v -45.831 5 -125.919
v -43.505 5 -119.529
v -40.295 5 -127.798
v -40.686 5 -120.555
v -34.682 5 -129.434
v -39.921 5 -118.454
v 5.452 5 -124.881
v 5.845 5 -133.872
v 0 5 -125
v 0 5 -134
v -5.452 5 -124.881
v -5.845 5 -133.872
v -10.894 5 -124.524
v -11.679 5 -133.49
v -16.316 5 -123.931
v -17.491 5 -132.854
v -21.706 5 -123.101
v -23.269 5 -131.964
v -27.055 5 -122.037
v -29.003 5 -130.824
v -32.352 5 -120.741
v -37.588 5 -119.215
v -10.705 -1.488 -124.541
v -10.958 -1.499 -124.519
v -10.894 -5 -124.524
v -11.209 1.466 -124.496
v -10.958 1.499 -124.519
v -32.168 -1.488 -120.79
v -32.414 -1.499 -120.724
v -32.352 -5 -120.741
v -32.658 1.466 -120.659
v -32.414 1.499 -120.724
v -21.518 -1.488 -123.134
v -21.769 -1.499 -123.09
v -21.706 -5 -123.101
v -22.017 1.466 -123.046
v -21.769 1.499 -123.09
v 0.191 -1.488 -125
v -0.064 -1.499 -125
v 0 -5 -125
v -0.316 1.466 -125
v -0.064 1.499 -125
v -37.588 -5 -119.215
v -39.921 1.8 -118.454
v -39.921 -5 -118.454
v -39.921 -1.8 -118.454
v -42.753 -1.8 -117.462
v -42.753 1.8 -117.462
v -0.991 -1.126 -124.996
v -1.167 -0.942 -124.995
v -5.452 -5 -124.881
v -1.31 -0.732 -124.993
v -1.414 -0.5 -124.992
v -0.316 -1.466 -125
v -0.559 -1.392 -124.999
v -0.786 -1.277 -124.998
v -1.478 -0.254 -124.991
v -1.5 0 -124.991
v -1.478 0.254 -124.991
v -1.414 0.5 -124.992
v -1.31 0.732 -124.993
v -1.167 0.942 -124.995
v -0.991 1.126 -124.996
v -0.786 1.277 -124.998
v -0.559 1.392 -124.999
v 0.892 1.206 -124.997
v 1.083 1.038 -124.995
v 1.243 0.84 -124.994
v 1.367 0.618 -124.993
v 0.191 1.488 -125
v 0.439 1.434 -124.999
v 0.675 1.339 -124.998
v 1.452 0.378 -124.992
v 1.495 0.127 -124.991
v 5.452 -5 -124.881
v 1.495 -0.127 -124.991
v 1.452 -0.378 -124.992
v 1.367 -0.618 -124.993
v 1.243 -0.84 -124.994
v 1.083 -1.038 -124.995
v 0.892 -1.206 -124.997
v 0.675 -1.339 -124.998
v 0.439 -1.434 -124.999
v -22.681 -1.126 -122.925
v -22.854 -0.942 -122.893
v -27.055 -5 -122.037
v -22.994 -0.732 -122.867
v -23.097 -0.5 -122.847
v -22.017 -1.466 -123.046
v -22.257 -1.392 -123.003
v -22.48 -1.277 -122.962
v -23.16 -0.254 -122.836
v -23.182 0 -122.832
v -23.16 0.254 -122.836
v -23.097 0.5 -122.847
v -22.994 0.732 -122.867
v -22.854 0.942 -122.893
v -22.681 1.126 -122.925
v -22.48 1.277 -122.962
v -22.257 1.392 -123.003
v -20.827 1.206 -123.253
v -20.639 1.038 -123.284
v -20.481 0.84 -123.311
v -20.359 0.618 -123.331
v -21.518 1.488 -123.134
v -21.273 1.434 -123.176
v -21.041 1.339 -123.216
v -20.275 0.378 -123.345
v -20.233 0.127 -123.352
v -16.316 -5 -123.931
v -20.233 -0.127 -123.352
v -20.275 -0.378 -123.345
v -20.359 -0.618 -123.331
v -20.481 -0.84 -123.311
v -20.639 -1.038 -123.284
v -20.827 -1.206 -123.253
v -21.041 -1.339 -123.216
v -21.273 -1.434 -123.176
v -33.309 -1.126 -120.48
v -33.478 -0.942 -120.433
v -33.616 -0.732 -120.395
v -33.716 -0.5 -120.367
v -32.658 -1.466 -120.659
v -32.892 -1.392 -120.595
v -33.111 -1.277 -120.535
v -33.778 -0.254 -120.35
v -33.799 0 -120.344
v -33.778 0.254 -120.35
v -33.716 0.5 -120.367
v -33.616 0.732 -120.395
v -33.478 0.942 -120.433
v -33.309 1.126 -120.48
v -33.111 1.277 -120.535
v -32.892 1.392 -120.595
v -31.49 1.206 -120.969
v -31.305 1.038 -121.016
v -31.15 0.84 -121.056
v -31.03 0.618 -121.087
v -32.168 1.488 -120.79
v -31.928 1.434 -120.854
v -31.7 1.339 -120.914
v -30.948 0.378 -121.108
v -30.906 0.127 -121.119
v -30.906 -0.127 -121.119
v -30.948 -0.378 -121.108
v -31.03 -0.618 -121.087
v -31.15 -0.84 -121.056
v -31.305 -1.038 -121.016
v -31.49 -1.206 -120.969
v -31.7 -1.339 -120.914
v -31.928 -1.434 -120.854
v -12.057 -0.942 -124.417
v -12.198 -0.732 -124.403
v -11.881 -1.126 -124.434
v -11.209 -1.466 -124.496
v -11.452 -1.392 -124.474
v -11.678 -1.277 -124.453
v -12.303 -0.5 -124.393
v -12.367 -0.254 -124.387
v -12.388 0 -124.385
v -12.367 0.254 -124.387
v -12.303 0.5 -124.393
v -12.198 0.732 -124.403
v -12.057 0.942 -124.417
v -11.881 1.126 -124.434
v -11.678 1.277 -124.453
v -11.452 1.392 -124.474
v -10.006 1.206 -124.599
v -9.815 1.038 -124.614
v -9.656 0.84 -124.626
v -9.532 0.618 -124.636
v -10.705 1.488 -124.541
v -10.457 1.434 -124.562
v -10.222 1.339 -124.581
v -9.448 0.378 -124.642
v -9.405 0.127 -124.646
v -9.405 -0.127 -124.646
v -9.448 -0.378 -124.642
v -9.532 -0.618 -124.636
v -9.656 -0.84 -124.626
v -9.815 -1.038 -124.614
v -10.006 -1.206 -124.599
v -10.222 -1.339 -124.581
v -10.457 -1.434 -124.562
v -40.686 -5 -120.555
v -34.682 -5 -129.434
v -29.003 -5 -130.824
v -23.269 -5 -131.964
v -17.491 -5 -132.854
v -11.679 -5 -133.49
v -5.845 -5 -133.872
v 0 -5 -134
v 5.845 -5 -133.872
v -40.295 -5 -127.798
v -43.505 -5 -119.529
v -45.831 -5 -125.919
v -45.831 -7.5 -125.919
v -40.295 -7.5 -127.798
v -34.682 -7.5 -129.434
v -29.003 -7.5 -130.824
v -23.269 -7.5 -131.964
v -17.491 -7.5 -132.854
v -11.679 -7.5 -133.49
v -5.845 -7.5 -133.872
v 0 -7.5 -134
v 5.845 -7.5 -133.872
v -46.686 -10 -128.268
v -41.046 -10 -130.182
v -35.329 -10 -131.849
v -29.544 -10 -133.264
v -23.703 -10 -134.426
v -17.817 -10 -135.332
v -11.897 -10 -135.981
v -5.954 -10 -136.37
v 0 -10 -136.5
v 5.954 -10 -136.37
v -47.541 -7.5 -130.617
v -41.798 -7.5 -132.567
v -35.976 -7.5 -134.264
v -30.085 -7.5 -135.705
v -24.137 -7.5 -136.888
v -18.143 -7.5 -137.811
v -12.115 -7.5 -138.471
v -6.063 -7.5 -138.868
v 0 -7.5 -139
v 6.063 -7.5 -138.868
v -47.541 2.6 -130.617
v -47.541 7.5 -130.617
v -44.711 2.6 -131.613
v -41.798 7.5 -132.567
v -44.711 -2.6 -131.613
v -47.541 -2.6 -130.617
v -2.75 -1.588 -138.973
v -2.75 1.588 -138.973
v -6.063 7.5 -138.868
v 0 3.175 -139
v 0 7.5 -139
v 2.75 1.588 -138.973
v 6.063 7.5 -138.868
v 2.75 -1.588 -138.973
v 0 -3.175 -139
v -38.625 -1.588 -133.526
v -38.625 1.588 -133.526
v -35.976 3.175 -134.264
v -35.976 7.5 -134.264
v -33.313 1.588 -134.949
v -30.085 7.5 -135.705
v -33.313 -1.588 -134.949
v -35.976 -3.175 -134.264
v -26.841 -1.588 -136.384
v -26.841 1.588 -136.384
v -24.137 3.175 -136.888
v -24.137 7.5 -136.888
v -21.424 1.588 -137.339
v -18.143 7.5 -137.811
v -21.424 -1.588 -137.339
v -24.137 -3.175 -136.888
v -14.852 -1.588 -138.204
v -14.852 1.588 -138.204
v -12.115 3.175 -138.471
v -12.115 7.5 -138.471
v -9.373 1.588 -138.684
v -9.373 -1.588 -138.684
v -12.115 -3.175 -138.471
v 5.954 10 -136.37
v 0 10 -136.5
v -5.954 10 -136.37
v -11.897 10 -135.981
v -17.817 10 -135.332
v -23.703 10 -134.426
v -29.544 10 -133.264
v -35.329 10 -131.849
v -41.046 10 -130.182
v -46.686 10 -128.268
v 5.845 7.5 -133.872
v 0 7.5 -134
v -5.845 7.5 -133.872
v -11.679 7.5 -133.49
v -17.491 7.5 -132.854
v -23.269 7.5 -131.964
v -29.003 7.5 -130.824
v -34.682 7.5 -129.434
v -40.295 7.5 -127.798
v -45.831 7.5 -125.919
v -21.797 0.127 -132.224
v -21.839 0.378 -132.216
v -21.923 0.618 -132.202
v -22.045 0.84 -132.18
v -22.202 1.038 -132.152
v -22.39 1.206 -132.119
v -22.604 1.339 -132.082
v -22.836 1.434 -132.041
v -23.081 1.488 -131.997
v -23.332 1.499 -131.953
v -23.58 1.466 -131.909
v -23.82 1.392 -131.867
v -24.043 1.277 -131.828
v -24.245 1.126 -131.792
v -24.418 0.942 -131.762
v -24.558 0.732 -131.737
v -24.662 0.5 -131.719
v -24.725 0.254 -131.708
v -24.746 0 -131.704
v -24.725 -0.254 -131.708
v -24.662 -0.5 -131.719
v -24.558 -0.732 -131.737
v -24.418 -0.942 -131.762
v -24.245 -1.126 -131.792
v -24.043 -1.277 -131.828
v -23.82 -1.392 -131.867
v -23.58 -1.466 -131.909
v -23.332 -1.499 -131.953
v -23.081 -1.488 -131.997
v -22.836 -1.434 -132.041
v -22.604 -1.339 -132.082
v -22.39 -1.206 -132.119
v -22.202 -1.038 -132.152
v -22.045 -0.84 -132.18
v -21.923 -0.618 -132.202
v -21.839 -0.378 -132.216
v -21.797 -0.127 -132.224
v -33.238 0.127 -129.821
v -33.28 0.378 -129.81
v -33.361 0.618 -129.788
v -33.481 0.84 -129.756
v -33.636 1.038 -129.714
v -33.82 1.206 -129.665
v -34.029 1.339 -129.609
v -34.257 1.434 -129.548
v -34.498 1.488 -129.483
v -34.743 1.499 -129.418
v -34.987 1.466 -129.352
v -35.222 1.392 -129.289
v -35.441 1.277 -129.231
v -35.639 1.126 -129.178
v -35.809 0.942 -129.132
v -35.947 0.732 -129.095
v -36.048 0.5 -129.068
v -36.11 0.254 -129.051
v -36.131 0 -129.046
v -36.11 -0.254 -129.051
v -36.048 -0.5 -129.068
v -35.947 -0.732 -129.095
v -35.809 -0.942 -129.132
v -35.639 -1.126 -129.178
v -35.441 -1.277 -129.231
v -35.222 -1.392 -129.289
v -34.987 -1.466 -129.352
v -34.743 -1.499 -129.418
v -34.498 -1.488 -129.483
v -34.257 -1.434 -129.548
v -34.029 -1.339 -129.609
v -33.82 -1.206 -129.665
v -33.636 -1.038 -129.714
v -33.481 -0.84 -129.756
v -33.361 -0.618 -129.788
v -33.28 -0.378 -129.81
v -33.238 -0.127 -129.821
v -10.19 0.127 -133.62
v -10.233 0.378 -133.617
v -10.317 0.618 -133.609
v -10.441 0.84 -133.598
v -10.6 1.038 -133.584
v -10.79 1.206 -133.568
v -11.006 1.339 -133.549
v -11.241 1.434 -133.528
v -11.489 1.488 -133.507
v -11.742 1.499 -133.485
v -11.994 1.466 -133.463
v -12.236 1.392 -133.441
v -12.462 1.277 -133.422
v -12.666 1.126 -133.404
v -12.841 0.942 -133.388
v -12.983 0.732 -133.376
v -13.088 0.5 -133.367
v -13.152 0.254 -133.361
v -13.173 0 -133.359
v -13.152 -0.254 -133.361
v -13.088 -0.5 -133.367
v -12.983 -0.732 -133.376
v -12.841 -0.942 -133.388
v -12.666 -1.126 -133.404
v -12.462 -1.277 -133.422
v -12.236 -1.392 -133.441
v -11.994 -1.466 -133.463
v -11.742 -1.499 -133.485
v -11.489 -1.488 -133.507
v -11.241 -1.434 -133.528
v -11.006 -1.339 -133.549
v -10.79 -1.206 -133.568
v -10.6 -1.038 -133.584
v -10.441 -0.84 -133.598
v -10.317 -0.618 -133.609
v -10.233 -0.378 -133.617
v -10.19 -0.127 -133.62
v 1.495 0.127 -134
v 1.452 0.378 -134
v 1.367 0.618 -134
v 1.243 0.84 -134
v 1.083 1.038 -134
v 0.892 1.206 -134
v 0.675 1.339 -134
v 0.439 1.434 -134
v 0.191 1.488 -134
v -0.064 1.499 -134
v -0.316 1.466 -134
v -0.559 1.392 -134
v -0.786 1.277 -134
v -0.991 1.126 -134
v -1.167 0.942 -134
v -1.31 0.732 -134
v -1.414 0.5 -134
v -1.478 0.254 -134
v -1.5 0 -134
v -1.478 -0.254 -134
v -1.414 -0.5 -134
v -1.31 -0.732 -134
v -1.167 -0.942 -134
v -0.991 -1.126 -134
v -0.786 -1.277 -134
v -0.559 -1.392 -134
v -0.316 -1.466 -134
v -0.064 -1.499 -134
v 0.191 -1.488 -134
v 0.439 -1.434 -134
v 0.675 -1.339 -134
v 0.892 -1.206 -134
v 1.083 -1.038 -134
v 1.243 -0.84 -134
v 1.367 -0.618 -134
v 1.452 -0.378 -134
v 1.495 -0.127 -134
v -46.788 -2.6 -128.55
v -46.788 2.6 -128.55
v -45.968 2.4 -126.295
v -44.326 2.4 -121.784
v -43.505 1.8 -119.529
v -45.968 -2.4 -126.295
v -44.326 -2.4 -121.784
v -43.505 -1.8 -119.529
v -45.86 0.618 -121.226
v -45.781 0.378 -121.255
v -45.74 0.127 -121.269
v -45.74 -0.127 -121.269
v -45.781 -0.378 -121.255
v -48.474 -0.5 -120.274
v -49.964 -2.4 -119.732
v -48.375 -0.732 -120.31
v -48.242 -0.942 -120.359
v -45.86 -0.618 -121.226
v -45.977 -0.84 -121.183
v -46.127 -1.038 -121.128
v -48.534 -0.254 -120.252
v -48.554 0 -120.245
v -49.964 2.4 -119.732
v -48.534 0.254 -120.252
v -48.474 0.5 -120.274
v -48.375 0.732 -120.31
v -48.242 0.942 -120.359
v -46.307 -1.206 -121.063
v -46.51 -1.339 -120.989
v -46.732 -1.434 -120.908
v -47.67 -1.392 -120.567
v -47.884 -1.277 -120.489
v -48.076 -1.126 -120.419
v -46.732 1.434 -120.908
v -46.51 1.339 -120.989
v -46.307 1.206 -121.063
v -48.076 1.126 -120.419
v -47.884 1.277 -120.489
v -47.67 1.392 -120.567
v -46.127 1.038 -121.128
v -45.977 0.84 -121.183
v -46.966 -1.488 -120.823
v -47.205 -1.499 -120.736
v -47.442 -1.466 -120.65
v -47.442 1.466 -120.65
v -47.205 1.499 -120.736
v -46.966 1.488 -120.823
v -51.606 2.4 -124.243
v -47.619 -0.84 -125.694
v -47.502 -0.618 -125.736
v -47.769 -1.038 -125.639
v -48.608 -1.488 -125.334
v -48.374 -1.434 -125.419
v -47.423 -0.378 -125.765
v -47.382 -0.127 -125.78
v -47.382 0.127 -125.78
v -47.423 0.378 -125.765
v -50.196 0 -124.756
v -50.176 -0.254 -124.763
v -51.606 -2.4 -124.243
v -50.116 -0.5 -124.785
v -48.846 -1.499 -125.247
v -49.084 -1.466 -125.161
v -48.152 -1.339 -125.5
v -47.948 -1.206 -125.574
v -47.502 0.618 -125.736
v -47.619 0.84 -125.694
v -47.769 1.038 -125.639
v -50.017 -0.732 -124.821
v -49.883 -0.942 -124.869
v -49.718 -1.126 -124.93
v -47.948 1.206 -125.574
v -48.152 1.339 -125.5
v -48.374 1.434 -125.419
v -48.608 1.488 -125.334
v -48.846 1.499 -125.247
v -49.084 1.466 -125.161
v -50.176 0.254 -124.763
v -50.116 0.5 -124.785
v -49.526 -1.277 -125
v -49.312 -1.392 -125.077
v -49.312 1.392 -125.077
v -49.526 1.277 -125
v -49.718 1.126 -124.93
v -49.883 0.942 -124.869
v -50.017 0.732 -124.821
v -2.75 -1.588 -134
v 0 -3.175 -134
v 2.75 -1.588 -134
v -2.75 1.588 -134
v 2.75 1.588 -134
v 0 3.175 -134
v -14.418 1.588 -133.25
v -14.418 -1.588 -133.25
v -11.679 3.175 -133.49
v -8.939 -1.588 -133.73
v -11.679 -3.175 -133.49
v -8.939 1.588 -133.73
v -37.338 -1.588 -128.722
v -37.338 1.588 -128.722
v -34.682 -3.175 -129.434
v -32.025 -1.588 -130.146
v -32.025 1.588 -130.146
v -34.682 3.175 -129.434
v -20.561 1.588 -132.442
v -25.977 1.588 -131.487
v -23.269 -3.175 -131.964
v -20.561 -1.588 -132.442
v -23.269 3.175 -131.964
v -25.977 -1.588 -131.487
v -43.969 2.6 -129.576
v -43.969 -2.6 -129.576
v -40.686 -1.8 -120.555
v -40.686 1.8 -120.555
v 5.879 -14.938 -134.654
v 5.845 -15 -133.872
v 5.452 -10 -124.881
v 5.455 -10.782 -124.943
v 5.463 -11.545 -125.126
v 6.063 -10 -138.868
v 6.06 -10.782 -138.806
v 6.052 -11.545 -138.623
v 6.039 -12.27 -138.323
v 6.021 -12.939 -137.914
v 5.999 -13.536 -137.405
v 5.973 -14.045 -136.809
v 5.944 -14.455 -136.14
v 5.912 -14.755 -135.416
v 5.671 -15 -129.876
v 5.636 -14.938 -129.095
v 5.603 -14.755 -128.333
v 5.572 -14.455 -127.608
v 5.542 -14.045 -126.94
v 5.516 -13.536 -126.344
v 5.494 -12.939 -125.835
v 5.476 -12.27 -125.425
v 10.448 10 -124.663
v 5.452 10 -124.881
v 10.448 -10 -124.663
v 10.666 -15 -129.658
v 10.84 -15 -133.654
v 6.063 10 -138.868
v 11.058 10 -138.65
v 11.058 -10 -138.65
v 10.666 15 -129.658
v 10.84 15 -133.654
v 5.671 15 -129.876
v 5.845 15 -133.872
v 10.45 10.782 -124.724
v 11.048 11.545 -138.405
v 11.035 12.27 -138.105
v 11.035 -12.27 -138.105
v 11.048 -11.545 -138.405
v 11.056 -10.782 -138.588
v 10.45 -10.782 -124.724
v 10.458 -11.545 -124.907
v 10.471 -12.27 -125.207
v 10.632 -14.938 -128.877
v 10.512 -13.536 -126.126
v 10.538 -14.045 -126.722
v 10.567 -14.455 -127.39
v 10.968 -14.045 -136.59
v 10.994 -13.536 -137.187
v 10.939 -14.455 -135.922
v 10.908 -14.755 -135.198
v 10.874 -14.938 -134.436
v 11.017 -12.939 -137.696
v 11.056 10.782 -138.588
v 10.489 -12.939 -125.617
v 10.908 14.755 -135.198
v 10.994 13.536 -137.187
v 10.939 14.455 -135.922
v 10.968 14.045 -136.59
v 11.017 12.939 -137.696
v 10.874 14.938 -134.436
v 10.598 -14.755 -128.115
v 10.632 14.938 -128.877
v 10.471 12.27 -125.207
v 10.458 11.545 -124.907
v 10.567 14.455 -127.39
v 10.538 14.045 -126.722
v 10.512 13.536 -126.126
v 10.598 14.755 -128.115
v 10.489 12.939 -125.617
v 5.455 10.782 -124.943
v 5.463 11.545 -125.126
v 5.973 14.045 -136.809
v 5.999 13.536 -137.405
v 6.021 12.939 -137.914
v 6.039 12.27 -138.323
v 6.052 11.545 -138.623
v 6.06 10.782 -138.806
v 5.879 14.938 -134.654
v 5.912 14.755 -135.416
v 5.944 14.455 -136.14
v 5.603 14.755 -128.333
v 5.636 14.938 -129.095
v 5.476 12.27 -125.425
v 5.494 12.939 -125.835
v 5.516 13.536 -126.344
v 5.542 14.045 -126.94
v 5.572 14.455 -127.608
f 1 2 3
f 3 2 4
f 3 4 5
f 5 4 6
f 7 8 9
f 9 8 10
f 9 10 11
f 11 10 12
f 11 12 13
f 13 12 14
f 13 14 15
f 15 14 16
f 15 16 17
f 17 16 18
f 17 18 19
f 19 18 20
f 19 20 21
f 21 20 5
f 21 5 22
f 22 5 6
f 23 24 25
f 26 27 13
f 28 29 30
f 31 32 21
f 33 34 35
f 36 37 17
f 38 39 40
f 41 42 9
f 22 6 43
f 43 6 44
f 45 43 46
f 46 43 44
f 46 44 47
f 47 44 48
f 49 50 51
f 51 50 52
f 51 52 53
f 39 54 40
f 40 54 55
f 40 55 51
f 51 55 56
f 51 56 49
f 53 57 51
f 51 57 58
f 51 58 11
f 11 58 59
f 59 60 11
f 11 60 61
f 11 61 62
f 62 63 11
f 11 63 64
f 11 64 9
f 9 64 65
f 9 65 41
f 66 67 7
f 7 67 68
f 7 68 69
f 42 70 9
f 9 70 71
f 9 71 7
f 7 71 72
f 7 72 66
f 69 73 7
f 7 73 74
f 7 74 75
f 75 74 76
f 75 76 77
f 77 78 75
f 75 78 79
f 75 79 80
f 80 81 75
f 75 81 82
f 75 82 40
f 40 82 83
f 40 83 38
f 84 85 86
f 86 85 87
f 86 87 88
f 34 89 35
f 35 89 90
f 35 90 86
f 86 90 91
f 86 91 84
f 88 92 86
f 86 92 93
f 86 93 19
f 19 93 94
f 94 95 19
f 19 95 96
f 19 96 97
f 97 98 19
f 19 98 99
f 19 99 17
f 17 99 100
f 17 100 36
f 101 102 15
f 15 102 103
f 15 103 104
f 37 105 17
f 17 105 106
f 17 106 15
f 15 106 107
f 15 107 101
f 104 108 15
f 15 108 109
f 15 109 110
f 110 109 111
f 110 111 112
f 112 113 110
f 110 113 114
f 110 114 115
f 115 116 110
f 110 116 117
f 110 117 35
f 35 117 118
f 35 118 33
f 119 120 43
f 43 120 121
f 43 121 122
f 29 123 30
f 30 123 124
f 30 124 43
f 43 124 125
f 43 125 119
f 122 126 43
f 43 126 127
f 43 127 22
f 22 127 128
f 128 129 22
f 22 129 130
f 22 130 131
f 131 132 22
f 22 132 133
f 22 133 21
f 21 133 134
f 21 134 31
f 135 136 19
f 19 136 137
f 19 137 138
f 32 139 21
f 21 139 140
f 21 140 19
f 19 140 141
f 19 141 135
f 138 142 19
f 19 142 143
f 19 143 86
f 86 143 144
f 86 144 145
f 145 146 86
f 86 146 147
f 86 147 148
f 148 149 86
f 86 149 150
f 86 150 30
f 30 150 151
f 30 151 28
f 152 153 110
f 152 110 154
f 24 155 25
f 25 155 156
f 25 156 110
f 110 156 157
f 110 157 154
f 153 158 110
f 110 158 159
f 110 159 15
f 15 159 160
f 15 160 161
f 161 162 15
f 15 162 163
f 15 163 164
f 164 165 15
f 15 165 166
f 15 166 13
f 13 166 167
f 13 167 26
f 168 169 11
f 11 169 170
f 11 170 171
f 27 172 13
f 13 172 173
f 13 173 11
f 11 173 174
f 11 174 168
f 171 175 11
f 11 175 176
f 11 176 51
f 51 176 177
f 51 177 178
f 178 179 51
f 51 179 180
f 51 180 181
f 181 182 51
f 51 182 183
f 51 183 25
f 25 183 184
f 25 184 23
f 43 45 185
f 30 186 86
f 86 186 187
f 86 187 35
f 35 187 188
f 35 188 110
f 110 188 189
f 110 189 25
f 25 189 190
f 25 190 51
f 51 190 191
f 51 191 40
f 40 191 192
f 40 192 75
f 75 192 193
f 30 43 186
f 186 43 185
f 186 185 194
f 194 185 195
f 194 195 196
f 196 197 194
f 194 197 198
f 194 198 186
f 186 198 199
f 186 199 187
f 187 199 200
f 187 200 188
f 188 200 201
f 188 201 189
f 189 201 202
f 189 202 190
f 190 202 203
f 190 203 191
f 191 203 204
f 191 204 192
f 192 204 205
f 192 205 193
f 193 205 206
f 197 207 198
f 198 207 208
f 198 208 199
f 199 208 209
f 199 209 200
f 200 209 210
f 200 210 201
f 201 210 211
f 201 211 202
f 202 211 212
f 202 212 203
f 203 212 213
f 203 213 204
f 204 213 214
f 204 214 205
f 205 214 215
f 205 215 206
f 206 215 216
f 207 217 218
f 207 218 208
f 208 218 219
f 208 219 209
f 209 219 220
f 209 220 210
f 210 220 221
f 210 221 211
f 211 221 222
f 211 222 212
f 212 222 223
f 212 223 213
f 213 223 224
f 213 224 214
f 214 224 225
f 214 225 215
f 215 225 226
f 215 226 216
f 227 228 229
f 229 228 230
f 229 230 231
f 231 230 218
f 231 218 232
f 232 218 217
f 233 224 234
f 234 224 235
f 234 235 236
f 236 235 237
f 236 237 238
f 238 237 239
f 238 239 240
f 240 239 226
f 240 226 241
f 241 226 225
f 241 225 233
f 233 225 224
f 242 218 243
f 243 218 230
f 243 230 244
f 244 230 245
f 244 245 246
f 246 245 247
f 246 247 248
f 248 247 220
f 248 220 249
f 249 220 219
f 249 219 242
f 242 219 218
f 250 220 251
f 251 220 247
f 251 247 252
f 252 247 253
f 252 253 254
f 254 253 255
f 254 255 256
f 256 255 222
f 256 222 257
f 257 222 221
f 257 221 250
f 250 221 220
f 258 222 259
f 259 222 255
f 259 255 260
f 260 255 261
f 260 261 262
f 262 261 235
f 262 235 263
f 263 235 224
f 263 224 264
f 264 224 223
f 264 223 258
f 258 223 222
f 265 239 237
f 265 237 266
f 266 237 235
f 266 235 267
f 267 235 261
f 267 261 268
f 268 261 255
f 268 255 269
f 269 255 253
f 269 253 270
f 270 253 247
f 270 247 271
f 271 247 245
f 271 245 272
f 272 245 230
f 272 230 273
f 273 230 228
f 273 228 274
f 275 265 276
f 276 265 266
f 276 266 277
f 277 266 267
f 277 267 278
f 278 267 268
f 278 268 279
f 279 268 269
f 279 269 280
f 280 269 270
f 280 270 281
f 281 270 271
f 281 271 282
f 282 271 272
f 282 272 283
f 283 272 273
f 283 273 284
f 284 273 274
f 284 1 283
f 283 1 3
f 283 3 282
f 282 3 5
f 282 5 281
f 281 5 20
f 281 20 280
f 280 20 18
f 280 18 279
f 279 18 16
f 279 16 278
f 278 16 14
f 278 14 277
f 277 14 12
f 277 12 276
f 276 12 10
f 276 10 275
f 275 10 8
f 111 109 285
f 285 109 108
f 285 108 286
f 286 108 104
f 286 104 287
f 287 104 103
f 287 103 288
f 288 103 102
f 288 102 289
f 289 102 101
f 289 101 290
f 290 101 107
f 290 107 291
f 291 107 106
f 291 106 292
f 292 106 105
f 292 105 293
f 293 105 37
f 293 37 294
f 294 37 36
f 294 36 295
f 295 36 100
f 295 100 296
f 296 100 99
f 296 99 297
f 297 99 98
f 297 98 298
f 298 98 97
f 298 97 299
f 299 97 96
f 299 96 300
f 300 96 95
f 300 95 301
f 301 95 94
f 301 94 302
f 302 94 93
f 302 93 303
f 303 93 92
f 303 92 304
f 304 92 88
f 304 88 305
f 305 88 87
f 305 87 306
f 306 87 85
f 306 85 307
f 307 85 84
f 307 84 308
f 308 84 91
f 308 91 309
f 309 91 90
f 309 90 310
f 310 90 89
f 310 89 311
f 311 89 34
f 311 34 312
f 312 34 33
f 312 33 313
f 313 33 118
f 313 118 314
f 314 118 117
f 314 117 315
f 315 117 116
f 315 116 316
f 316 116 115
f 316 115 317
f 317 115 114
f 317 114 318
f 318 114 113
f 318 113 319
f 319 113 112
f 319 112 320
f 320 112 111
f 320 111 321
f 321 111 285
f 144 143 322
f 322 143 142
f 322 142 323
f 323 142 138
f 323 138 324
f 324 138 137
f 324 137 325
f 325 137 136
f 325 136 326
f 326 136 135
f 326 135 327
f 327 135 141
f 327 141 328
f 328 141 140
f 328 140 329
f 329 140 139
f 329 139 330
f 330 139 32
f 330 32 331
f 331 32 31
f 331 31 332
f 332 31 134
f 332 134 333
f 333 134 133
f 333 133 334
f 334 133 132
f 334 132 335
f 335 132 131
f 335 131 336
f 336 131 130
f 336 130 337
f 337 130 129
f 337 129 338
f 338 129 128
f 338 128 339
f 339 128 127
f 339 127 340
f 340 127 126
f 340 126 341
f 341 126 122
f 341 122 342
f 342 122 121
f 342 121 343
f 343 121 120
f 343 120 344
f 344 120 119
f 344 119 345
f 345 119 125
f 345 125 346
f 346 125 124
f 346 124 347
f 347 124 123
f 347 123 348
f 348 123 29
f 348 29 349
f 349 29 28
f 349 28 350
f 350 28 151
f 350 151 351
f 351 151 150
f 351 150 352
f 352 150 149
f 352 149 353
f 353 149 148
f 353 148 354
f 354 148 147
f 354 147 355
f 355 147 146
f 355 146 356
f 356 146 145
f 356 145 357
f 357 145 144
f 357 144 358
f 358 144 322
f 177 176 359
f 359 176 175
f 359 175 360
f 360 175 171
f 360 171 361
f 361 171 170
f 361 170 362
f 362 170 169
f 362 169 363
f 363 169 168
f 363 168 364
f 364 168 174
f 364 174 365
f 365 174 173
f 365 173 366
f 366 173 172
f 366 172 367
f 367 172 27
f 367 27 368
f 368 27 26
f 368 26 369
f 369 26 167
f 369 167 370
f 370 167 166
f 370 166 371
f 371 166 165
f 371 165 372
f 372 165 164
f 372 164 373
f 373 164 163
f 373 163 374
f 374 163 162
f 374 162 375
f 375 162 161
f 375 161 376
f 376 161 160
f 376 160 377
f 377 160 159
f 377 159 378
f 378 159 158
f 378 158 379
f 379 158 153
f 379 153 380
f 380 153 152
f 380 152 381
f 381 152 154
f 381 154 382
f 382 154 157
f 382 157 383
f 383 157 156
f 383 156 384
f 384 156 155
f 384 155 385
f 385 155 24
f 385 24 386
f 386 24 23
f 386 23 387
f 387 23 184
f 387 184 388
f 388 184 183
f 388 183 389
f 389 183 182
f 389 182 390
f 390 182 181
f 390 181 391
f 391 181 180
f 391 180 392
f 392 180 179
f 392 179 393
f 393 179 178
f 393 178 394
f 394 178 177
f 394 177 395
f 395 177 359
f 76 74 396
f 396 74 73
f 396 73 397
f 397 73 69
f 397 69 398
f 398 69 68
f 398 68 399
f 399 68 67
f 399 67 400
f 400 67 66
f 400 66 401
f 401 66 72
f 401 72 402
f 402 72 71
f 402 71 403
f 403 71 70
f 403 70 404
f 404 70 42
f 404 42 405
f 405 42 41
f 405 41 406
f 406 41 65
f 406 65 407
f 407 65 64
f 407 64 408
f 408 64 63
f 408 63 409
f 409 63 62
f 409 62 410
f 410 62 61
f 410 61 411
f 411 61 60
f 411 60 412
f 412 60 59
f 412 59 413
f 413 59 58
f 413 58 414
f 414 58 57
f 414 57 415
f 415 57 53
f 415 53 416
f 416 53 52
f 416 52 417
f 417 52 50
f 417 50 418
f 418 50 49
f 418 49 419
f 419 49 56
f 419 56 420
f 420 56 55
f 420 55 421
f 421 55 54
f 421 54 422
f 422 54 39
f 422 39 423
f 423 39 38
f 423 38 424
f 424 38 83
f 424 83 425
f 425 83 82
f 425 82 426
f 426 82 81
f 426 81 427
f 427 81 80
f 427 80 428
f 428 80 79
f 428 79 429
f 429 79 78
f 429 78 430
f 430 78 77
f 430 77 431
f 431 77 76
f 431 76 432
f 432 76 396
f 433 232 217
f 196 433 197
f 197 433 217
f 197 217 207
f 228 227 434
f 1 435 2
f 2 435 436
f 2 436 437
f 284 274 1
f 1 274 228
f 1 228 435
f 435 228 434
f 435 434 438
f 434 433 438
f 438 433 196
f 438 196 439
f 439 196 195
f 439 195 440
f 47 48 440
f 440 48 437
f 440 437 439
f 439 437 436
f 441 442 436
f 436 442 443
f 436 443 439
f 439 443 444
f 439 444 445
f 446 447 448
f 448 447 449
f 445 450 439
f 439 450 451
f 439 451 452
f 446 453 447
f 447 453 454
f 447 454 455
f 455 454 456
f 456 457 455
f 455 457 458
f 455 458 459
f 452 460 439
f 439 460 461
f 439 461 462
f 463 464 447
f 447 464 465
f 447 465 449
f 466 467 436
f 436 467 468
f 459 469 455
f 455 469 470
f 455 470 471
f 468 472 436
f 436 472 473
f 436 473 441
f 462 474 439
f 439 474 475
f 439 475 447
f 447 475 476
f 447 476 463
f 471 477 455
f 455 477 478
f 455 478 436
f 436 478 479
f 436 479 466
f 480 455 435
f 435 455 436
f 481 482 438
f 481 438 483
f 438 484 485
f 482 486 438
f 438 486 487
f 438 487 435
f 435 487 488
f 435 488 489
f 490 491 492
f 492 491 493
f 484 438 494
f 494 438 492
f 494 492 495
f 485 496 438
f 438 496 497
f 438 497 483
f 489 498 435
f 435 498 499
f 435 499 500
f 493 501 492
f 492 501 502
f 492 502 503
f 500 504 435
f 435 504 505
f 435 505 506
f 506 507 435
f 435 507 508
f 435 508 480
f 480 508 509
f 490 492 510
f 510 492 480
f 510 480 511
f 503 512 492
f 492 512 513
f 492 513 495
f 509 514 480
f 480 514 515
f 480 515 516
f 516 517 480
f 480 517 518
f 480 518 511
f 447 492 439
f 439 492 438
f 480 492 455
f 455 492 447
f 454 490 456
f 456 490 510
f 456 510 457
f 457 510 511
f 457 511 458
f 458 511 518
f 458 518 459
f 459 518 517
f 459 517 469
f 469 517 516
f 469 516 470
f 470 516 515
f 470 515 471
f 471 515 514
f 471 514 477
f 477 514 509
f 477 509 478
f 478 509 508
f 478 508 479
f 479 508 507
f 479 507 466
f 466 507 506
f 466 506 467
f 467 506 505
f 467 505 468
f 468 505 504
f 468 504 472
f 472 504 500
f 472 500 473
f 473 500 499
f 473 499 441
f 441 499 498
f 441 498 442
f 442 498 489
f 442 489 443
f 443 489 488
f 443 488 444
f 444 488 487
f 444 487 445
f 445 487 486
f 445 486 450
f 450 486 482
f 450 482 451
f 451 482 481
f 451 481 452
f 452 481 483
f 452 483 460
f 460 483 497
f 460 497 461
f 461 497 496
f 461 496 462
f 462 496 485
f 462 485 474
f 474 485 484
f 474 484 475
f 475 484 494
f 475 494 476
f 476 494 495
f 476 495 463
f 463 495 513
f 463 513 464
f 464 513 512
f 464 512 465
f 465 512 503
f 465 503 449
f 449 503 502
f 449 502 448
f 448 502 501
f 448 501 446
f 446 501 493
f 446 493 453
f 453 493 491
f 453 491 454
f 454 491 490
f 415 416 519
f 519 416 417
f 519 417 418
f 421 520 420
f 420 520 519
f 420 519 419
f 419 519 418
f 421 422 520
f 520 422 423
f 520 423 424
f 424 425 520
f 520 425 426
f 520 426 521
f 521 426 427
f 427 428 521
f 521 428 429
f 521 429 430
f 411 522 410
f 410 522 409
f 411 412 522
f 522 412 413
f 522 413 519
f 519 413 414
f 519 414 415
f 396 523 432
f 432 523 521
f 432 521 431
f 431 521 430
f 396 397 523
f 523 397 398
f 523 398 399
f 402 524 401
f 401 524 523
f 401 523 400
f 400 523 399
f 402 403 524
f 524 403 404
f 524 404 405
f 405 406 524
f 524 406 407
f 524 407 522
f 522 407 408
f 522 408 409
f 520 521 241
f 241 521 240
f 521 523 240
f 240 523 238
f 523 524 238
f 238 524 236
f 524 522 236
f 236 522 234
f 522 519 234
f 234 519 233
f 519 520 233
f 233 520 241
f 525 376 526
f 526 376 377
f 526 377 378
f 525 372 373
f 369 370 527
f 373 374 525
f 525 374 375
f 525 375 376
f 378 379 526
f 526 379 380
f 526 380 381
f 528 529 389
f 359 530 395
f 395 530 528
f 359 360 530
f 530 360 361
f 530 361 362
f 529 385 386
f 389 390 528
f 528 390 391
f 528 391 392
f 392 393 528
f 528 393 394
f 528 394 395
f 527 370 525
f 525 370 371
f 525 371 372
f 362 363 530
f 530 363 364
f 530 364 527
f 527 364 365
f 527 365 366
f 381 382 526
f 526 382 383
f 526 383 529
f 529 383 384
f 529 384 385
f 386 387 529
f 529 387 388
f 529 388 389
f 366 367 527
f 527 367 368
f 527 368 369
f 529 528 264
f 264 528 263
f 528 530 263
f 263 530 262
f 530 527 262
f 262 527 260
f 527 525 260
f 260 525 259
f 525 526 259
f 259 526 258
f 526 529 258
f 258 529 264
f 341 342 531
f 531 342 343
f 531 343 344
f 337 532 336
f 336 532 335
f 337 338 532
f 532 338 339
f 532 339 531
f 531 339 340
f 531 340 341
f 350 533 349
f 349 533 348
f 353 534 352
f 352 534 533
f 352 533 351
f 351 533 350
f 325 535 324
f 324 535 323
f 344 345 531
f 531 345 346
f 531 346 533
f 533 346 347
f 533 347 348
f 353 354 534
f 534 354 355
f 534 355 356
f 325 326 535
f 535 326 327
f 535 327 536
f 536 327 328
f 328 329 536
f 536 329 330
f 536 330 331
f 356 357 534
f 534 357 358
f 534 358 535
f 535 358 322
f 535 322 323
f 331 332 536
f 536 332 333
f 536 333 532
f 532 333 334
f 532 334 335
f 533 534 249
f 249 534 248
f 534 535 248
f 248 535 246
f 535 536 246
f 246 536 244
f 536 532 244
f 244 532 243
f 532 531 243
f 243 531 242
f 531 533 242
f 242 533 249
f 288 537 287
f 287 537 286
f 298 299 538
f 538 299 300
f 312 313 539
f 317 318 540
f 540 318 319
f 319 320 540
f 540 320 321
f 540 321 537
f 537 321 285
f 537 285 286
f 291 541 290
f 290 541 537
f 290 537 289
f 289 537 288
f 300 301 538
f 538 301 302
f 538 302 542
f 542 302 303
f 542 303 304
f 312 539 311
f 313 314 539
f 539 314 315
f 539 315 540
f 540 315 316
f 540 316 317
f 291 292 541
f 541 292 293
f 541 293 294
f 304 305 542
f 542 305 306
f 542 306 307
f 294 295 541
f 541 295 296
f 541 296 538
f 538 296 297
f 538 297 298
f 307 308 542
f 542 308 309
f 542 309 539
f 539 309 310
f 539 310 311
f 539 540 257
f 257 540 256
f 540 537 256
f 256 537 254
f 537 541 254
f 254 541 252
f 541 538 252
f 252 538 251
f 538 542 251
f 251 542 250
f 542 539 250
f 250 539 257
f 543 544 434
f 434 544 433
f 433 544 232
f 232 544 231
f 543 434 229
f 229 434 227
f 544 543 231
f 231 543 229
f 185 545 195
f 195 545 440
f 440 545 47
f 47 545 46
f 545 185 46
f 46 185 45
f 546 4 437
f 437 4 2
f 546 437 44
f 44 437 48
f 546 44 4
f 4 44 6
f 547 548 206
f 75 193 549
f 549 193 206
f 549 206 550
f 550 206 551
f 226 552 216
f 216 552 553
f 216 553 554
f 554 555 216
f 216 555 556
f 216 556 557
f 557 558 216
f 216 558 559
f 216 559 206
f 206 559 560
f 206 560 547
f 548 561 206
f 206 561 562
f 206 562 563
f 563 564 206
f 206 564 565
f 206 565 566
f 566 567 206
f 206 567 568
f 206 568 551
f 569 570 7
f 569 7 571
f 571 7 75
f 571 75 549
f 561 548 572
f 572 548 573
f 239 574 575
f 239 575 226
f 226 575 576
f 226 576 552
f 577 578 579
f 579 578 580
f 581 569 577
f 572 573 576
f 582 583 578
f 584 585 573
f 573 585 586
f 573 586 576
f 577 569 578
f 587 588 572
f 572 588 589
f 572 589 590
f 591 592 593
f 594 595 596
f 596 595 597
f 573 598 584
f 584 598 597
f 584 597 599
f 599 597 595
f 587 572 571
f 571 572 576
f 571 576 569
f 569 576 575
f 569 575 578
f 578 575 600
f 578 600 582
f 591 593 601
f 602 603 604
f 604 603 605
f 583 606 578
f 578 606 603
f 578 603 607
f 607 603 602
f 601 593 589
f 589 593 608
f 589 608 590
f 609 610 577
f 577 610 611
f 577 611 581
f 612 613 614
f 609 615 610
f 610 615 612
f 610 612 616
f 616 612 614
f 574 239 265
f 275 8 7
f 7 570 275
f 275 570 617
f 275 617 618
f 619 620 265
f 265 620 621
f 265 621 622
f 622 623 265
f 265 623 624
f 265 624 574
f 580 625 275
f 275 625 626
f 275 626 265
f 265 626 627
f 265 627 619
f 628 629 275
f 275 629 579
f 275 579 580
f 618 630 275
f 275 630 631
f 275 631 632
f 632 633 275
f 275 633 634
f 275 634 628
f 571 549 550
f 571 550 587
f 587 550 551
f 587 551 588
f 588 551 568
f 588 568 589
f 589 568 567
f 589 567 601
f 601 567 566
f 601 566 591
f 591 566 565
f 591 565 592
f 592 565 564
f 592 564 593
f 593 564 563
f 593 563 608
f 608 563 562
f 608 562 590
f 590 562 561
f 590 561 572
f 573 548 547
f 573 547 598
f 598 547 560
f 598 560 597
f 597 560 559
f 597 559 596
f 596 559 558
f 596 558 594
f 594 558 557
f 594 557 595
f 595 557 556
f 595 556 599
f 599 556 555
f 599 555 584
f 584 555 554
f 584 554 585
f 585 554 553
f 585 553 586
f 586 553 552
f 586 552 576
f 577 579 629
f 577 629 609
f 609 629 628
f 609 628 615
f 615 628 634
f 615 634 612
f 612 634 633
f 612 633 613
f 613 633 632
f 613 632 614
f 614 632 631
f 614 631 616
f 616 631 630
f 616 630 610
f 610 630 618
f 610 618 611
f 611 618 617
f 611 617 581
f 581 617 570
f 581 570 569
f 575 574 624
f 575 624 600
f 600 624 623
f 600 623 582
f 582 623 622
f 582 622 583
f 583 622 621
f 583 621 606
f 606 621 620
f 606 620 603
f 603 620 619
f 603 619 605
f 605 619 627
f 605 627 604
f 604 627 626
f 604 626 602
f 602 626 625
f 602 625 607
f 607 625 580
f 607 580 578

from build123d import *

# Parameters (mm, degrees)
REVOLVE_1_ANGLE          = 40
SKETCH_4_W               = 4.8
SKETCH_4_H               = 4.8
EXTRUDE_1_DEPTH          = 6
SKETCH_7_R               = 1.5
CUT_EXTRUDE_4_DEPTH      = 95.895882206
SKETCH_13_R              = 1.5
CUT_EXTRUDE_7_DEPTH      = 57.80711304
CUT_EXTRUDE_8_DEPTH      = 5
PATTERN_CIRCULAR_1_COUNT = 4
PATTERN_CIRCULAR_1_ANGLE = 15
SKETCH_10_W              = 2.2
SKETCH_10_H              = 5.2
CUT_EXTRUDE_5_DEPTH      = 3
SKETCH_11_W              = 47.375376564
SKETCH_11_H              = 32.407082742
CUT_EXTRUDE_6_DEPTH      = 149.607349927
SKETCH_12_W              = 14
SKETCH_12_H              = 30
EXTRUDE_2_DEPTH          = 5
FILLET_1_R               = 5


# Read off the part's stored shape, not the designer's step: 旋转1
with BuildPart() as part:
    # 旋转1 outline → 旋转1 (revolve)
    with BuildSketch(Plane(origin=(0, 0, 0), x_dir=(0.3420201433256701, 0, -0.9396926207859079), z_dir=(0.9396926207859079, 0, 0.3420201433256701))):
        Polygon((134, 5), (125, 5), (125, -5), (134, -5), (134, -7.5), (136.5, -10), (139, -7.5), (139, 7.5), (136.5, 10), (134, 7.5), align=None)
    revolve(axis=Axis((0, 0, 0), (0, 1, 0)), revolution_arc=REVOLVE_1_ANGLE)

    # 草图4 → 凸台-拉伸1 (add)
    with BuildSketch(Plane(origin=(0, 0, 0), x_dir=(0.3420201433256631, 0, 0.9396926207859104), z_dir=(-0.9396926207859104, 0, 0.3420201433256631))):
        with Locations((-132, 0)):
            Rectangle(SKETCH_4_W, SKETCH_4_H)
    extrude(amount=EXTRUDE_1_DEPTH)

    # 草图7 → 切除-拉伸4 (cut, through all)
    with BuildSketch(Plane(origin=(-45.967507263, 0, -126.294688234), x_dir=(-0.9396926207859105, 0, 0.3420201433256632), z_dir=(-0.3420201433256632, 0, -0.9396926207859105))):
        with Locations((3, 0)):
            Circle(SKETCH_7_R)
    extrude(amount=-CUT_EXTRUDE_4_DEPTH, mode=Mode.SUBTRACT)

    # 草图13 → 切除-拉伸7 (cut, through all)
    with BuildSketch(Plane(origin=(0, 0, -139), x_dir=(-1, 0, 0), z_dir=(0, 0, -1))):
        Circle(SKETCH_13_R)
    cut_extrude_7 = extrude(amount=-CUT_EXTRUDE_7_DEPTH, mode=Mode.SUBTRACT)

    # 草图14 → 切除-拉伸8 (cut)
    with BuildSketch(Plane(origin=(0, 0, -139), x_dir=(-1, 0, 0), z_dir=(0, 0, -1))):
        Polygon((0, -3.175426481), (2.75, -1.58771324), (2.75, 1.58771324), (0, 3.175426481), (-2.75, 1.58771324), (-2.75, -1.58771324), align=None)
    cut_extrude_8 = extrude(amount=-CUT_EXTRUDE_8_DEPTH, mode=Mode.SUBTRACT)

    # 阵列(圆周)1: 切除-拉伸7, 切除-拉伸8 ×4 about axis
    pattern_circular_1_axis = Axis((0, 0, 0), (0, 1, 0))
    add([cut_extrude_7.rotate(pattern_circular_1_axis, i * PATTERN_CIRCULAR_1_ANGLE / (PATTERN_CIRCULAR_1_COUNT - 1)) for i in range(1, PATTERN_CIRCULAR_1_COUNT)], mode=Mode.SUBTRACT)
    add([cut_extrude_8.rotate(pattern_circular_1_axis, i * PATTERN_CIRCULAR_1_ANGLE / (PATTERN_CIRCULAR_1_COUNT - 1)) for i in range(1, PATTERN_CIRCULAR_1_COUNT)], mode=Mode.SUBTRACT)

    # 草图10 → 切除-拉伸5 (cut)
    with BuildSketch(Plane(origin=(0, 0, 0), x_dir=(0.3420201433256631, 0, 0.9396926207859104), z_dir=(-0.9396926207859104, 0, 0.3420201433256631))):
        with Locations((-137.9, 0)):
            Rectangle(SKETCH_10_W, SKETCH_10_H)
        Polygon((-127.2, 5), (-125, 5), (-123.655375964, 5), (-123.655375964, 1.8), (-125, 1.8), (-127.2, 1.8), align=None)
        Polygon((-127.2, -1.8), (-125, -1.8), (-123.655375964, -1.8), (-123.655375964, -5), (-125, -5), (-127.2, -5), align=None)
    extrude(amount=-CUT_EXTRUDE_5_DEPTH, mode=Mode.SUBTRACT)

    # 草图11 → 切除-拉伸6 (cut, through all)
    with BuildSketch(Plane(origin=(0, 0, 0), x_dir=(0, -1, 0), z_dir=(0.9990482215818578, 0, 0.0436193873653361))):
        with Locations((-1.017262687, 125.577370773)):
            Rectangle(SKETCH_11_W, SKETCH_11_H)
    extrude(amount=CUT_EXTRUDE_6_DEPTH, mode=Mode.SUBTRACT)

    # 草图12 → 凸台-拉伸2 (add)
    with BuildSketch(Plane(origin=(0, 0, 0), x_dir=(0.043619387365336125, 0, -0.9990482215818578), z_dir=(0.9990482215818577, 0, 0.04361938736533612))):
        with Locations((132, 0)):
            Rectangle(SKETCH_12_W, SKETCH_12_H)
    extrude(amount=EXTRUDE_2_DEPTH)

    # 圆角1
    fillet_1_edges = [part.edges().sort_by_distance(p)[0] for p in [
        (7.950043975, 15, -124.771979229),
        (7.950043975, -15, -124.771979229),
        (8.560715398, -15, -138.758654331),
        (8.560715398, 15, -138.758654331),
    ]]
    fillet(fillet_1_edges, radius=FILLET_1_R)


solid = part.part
